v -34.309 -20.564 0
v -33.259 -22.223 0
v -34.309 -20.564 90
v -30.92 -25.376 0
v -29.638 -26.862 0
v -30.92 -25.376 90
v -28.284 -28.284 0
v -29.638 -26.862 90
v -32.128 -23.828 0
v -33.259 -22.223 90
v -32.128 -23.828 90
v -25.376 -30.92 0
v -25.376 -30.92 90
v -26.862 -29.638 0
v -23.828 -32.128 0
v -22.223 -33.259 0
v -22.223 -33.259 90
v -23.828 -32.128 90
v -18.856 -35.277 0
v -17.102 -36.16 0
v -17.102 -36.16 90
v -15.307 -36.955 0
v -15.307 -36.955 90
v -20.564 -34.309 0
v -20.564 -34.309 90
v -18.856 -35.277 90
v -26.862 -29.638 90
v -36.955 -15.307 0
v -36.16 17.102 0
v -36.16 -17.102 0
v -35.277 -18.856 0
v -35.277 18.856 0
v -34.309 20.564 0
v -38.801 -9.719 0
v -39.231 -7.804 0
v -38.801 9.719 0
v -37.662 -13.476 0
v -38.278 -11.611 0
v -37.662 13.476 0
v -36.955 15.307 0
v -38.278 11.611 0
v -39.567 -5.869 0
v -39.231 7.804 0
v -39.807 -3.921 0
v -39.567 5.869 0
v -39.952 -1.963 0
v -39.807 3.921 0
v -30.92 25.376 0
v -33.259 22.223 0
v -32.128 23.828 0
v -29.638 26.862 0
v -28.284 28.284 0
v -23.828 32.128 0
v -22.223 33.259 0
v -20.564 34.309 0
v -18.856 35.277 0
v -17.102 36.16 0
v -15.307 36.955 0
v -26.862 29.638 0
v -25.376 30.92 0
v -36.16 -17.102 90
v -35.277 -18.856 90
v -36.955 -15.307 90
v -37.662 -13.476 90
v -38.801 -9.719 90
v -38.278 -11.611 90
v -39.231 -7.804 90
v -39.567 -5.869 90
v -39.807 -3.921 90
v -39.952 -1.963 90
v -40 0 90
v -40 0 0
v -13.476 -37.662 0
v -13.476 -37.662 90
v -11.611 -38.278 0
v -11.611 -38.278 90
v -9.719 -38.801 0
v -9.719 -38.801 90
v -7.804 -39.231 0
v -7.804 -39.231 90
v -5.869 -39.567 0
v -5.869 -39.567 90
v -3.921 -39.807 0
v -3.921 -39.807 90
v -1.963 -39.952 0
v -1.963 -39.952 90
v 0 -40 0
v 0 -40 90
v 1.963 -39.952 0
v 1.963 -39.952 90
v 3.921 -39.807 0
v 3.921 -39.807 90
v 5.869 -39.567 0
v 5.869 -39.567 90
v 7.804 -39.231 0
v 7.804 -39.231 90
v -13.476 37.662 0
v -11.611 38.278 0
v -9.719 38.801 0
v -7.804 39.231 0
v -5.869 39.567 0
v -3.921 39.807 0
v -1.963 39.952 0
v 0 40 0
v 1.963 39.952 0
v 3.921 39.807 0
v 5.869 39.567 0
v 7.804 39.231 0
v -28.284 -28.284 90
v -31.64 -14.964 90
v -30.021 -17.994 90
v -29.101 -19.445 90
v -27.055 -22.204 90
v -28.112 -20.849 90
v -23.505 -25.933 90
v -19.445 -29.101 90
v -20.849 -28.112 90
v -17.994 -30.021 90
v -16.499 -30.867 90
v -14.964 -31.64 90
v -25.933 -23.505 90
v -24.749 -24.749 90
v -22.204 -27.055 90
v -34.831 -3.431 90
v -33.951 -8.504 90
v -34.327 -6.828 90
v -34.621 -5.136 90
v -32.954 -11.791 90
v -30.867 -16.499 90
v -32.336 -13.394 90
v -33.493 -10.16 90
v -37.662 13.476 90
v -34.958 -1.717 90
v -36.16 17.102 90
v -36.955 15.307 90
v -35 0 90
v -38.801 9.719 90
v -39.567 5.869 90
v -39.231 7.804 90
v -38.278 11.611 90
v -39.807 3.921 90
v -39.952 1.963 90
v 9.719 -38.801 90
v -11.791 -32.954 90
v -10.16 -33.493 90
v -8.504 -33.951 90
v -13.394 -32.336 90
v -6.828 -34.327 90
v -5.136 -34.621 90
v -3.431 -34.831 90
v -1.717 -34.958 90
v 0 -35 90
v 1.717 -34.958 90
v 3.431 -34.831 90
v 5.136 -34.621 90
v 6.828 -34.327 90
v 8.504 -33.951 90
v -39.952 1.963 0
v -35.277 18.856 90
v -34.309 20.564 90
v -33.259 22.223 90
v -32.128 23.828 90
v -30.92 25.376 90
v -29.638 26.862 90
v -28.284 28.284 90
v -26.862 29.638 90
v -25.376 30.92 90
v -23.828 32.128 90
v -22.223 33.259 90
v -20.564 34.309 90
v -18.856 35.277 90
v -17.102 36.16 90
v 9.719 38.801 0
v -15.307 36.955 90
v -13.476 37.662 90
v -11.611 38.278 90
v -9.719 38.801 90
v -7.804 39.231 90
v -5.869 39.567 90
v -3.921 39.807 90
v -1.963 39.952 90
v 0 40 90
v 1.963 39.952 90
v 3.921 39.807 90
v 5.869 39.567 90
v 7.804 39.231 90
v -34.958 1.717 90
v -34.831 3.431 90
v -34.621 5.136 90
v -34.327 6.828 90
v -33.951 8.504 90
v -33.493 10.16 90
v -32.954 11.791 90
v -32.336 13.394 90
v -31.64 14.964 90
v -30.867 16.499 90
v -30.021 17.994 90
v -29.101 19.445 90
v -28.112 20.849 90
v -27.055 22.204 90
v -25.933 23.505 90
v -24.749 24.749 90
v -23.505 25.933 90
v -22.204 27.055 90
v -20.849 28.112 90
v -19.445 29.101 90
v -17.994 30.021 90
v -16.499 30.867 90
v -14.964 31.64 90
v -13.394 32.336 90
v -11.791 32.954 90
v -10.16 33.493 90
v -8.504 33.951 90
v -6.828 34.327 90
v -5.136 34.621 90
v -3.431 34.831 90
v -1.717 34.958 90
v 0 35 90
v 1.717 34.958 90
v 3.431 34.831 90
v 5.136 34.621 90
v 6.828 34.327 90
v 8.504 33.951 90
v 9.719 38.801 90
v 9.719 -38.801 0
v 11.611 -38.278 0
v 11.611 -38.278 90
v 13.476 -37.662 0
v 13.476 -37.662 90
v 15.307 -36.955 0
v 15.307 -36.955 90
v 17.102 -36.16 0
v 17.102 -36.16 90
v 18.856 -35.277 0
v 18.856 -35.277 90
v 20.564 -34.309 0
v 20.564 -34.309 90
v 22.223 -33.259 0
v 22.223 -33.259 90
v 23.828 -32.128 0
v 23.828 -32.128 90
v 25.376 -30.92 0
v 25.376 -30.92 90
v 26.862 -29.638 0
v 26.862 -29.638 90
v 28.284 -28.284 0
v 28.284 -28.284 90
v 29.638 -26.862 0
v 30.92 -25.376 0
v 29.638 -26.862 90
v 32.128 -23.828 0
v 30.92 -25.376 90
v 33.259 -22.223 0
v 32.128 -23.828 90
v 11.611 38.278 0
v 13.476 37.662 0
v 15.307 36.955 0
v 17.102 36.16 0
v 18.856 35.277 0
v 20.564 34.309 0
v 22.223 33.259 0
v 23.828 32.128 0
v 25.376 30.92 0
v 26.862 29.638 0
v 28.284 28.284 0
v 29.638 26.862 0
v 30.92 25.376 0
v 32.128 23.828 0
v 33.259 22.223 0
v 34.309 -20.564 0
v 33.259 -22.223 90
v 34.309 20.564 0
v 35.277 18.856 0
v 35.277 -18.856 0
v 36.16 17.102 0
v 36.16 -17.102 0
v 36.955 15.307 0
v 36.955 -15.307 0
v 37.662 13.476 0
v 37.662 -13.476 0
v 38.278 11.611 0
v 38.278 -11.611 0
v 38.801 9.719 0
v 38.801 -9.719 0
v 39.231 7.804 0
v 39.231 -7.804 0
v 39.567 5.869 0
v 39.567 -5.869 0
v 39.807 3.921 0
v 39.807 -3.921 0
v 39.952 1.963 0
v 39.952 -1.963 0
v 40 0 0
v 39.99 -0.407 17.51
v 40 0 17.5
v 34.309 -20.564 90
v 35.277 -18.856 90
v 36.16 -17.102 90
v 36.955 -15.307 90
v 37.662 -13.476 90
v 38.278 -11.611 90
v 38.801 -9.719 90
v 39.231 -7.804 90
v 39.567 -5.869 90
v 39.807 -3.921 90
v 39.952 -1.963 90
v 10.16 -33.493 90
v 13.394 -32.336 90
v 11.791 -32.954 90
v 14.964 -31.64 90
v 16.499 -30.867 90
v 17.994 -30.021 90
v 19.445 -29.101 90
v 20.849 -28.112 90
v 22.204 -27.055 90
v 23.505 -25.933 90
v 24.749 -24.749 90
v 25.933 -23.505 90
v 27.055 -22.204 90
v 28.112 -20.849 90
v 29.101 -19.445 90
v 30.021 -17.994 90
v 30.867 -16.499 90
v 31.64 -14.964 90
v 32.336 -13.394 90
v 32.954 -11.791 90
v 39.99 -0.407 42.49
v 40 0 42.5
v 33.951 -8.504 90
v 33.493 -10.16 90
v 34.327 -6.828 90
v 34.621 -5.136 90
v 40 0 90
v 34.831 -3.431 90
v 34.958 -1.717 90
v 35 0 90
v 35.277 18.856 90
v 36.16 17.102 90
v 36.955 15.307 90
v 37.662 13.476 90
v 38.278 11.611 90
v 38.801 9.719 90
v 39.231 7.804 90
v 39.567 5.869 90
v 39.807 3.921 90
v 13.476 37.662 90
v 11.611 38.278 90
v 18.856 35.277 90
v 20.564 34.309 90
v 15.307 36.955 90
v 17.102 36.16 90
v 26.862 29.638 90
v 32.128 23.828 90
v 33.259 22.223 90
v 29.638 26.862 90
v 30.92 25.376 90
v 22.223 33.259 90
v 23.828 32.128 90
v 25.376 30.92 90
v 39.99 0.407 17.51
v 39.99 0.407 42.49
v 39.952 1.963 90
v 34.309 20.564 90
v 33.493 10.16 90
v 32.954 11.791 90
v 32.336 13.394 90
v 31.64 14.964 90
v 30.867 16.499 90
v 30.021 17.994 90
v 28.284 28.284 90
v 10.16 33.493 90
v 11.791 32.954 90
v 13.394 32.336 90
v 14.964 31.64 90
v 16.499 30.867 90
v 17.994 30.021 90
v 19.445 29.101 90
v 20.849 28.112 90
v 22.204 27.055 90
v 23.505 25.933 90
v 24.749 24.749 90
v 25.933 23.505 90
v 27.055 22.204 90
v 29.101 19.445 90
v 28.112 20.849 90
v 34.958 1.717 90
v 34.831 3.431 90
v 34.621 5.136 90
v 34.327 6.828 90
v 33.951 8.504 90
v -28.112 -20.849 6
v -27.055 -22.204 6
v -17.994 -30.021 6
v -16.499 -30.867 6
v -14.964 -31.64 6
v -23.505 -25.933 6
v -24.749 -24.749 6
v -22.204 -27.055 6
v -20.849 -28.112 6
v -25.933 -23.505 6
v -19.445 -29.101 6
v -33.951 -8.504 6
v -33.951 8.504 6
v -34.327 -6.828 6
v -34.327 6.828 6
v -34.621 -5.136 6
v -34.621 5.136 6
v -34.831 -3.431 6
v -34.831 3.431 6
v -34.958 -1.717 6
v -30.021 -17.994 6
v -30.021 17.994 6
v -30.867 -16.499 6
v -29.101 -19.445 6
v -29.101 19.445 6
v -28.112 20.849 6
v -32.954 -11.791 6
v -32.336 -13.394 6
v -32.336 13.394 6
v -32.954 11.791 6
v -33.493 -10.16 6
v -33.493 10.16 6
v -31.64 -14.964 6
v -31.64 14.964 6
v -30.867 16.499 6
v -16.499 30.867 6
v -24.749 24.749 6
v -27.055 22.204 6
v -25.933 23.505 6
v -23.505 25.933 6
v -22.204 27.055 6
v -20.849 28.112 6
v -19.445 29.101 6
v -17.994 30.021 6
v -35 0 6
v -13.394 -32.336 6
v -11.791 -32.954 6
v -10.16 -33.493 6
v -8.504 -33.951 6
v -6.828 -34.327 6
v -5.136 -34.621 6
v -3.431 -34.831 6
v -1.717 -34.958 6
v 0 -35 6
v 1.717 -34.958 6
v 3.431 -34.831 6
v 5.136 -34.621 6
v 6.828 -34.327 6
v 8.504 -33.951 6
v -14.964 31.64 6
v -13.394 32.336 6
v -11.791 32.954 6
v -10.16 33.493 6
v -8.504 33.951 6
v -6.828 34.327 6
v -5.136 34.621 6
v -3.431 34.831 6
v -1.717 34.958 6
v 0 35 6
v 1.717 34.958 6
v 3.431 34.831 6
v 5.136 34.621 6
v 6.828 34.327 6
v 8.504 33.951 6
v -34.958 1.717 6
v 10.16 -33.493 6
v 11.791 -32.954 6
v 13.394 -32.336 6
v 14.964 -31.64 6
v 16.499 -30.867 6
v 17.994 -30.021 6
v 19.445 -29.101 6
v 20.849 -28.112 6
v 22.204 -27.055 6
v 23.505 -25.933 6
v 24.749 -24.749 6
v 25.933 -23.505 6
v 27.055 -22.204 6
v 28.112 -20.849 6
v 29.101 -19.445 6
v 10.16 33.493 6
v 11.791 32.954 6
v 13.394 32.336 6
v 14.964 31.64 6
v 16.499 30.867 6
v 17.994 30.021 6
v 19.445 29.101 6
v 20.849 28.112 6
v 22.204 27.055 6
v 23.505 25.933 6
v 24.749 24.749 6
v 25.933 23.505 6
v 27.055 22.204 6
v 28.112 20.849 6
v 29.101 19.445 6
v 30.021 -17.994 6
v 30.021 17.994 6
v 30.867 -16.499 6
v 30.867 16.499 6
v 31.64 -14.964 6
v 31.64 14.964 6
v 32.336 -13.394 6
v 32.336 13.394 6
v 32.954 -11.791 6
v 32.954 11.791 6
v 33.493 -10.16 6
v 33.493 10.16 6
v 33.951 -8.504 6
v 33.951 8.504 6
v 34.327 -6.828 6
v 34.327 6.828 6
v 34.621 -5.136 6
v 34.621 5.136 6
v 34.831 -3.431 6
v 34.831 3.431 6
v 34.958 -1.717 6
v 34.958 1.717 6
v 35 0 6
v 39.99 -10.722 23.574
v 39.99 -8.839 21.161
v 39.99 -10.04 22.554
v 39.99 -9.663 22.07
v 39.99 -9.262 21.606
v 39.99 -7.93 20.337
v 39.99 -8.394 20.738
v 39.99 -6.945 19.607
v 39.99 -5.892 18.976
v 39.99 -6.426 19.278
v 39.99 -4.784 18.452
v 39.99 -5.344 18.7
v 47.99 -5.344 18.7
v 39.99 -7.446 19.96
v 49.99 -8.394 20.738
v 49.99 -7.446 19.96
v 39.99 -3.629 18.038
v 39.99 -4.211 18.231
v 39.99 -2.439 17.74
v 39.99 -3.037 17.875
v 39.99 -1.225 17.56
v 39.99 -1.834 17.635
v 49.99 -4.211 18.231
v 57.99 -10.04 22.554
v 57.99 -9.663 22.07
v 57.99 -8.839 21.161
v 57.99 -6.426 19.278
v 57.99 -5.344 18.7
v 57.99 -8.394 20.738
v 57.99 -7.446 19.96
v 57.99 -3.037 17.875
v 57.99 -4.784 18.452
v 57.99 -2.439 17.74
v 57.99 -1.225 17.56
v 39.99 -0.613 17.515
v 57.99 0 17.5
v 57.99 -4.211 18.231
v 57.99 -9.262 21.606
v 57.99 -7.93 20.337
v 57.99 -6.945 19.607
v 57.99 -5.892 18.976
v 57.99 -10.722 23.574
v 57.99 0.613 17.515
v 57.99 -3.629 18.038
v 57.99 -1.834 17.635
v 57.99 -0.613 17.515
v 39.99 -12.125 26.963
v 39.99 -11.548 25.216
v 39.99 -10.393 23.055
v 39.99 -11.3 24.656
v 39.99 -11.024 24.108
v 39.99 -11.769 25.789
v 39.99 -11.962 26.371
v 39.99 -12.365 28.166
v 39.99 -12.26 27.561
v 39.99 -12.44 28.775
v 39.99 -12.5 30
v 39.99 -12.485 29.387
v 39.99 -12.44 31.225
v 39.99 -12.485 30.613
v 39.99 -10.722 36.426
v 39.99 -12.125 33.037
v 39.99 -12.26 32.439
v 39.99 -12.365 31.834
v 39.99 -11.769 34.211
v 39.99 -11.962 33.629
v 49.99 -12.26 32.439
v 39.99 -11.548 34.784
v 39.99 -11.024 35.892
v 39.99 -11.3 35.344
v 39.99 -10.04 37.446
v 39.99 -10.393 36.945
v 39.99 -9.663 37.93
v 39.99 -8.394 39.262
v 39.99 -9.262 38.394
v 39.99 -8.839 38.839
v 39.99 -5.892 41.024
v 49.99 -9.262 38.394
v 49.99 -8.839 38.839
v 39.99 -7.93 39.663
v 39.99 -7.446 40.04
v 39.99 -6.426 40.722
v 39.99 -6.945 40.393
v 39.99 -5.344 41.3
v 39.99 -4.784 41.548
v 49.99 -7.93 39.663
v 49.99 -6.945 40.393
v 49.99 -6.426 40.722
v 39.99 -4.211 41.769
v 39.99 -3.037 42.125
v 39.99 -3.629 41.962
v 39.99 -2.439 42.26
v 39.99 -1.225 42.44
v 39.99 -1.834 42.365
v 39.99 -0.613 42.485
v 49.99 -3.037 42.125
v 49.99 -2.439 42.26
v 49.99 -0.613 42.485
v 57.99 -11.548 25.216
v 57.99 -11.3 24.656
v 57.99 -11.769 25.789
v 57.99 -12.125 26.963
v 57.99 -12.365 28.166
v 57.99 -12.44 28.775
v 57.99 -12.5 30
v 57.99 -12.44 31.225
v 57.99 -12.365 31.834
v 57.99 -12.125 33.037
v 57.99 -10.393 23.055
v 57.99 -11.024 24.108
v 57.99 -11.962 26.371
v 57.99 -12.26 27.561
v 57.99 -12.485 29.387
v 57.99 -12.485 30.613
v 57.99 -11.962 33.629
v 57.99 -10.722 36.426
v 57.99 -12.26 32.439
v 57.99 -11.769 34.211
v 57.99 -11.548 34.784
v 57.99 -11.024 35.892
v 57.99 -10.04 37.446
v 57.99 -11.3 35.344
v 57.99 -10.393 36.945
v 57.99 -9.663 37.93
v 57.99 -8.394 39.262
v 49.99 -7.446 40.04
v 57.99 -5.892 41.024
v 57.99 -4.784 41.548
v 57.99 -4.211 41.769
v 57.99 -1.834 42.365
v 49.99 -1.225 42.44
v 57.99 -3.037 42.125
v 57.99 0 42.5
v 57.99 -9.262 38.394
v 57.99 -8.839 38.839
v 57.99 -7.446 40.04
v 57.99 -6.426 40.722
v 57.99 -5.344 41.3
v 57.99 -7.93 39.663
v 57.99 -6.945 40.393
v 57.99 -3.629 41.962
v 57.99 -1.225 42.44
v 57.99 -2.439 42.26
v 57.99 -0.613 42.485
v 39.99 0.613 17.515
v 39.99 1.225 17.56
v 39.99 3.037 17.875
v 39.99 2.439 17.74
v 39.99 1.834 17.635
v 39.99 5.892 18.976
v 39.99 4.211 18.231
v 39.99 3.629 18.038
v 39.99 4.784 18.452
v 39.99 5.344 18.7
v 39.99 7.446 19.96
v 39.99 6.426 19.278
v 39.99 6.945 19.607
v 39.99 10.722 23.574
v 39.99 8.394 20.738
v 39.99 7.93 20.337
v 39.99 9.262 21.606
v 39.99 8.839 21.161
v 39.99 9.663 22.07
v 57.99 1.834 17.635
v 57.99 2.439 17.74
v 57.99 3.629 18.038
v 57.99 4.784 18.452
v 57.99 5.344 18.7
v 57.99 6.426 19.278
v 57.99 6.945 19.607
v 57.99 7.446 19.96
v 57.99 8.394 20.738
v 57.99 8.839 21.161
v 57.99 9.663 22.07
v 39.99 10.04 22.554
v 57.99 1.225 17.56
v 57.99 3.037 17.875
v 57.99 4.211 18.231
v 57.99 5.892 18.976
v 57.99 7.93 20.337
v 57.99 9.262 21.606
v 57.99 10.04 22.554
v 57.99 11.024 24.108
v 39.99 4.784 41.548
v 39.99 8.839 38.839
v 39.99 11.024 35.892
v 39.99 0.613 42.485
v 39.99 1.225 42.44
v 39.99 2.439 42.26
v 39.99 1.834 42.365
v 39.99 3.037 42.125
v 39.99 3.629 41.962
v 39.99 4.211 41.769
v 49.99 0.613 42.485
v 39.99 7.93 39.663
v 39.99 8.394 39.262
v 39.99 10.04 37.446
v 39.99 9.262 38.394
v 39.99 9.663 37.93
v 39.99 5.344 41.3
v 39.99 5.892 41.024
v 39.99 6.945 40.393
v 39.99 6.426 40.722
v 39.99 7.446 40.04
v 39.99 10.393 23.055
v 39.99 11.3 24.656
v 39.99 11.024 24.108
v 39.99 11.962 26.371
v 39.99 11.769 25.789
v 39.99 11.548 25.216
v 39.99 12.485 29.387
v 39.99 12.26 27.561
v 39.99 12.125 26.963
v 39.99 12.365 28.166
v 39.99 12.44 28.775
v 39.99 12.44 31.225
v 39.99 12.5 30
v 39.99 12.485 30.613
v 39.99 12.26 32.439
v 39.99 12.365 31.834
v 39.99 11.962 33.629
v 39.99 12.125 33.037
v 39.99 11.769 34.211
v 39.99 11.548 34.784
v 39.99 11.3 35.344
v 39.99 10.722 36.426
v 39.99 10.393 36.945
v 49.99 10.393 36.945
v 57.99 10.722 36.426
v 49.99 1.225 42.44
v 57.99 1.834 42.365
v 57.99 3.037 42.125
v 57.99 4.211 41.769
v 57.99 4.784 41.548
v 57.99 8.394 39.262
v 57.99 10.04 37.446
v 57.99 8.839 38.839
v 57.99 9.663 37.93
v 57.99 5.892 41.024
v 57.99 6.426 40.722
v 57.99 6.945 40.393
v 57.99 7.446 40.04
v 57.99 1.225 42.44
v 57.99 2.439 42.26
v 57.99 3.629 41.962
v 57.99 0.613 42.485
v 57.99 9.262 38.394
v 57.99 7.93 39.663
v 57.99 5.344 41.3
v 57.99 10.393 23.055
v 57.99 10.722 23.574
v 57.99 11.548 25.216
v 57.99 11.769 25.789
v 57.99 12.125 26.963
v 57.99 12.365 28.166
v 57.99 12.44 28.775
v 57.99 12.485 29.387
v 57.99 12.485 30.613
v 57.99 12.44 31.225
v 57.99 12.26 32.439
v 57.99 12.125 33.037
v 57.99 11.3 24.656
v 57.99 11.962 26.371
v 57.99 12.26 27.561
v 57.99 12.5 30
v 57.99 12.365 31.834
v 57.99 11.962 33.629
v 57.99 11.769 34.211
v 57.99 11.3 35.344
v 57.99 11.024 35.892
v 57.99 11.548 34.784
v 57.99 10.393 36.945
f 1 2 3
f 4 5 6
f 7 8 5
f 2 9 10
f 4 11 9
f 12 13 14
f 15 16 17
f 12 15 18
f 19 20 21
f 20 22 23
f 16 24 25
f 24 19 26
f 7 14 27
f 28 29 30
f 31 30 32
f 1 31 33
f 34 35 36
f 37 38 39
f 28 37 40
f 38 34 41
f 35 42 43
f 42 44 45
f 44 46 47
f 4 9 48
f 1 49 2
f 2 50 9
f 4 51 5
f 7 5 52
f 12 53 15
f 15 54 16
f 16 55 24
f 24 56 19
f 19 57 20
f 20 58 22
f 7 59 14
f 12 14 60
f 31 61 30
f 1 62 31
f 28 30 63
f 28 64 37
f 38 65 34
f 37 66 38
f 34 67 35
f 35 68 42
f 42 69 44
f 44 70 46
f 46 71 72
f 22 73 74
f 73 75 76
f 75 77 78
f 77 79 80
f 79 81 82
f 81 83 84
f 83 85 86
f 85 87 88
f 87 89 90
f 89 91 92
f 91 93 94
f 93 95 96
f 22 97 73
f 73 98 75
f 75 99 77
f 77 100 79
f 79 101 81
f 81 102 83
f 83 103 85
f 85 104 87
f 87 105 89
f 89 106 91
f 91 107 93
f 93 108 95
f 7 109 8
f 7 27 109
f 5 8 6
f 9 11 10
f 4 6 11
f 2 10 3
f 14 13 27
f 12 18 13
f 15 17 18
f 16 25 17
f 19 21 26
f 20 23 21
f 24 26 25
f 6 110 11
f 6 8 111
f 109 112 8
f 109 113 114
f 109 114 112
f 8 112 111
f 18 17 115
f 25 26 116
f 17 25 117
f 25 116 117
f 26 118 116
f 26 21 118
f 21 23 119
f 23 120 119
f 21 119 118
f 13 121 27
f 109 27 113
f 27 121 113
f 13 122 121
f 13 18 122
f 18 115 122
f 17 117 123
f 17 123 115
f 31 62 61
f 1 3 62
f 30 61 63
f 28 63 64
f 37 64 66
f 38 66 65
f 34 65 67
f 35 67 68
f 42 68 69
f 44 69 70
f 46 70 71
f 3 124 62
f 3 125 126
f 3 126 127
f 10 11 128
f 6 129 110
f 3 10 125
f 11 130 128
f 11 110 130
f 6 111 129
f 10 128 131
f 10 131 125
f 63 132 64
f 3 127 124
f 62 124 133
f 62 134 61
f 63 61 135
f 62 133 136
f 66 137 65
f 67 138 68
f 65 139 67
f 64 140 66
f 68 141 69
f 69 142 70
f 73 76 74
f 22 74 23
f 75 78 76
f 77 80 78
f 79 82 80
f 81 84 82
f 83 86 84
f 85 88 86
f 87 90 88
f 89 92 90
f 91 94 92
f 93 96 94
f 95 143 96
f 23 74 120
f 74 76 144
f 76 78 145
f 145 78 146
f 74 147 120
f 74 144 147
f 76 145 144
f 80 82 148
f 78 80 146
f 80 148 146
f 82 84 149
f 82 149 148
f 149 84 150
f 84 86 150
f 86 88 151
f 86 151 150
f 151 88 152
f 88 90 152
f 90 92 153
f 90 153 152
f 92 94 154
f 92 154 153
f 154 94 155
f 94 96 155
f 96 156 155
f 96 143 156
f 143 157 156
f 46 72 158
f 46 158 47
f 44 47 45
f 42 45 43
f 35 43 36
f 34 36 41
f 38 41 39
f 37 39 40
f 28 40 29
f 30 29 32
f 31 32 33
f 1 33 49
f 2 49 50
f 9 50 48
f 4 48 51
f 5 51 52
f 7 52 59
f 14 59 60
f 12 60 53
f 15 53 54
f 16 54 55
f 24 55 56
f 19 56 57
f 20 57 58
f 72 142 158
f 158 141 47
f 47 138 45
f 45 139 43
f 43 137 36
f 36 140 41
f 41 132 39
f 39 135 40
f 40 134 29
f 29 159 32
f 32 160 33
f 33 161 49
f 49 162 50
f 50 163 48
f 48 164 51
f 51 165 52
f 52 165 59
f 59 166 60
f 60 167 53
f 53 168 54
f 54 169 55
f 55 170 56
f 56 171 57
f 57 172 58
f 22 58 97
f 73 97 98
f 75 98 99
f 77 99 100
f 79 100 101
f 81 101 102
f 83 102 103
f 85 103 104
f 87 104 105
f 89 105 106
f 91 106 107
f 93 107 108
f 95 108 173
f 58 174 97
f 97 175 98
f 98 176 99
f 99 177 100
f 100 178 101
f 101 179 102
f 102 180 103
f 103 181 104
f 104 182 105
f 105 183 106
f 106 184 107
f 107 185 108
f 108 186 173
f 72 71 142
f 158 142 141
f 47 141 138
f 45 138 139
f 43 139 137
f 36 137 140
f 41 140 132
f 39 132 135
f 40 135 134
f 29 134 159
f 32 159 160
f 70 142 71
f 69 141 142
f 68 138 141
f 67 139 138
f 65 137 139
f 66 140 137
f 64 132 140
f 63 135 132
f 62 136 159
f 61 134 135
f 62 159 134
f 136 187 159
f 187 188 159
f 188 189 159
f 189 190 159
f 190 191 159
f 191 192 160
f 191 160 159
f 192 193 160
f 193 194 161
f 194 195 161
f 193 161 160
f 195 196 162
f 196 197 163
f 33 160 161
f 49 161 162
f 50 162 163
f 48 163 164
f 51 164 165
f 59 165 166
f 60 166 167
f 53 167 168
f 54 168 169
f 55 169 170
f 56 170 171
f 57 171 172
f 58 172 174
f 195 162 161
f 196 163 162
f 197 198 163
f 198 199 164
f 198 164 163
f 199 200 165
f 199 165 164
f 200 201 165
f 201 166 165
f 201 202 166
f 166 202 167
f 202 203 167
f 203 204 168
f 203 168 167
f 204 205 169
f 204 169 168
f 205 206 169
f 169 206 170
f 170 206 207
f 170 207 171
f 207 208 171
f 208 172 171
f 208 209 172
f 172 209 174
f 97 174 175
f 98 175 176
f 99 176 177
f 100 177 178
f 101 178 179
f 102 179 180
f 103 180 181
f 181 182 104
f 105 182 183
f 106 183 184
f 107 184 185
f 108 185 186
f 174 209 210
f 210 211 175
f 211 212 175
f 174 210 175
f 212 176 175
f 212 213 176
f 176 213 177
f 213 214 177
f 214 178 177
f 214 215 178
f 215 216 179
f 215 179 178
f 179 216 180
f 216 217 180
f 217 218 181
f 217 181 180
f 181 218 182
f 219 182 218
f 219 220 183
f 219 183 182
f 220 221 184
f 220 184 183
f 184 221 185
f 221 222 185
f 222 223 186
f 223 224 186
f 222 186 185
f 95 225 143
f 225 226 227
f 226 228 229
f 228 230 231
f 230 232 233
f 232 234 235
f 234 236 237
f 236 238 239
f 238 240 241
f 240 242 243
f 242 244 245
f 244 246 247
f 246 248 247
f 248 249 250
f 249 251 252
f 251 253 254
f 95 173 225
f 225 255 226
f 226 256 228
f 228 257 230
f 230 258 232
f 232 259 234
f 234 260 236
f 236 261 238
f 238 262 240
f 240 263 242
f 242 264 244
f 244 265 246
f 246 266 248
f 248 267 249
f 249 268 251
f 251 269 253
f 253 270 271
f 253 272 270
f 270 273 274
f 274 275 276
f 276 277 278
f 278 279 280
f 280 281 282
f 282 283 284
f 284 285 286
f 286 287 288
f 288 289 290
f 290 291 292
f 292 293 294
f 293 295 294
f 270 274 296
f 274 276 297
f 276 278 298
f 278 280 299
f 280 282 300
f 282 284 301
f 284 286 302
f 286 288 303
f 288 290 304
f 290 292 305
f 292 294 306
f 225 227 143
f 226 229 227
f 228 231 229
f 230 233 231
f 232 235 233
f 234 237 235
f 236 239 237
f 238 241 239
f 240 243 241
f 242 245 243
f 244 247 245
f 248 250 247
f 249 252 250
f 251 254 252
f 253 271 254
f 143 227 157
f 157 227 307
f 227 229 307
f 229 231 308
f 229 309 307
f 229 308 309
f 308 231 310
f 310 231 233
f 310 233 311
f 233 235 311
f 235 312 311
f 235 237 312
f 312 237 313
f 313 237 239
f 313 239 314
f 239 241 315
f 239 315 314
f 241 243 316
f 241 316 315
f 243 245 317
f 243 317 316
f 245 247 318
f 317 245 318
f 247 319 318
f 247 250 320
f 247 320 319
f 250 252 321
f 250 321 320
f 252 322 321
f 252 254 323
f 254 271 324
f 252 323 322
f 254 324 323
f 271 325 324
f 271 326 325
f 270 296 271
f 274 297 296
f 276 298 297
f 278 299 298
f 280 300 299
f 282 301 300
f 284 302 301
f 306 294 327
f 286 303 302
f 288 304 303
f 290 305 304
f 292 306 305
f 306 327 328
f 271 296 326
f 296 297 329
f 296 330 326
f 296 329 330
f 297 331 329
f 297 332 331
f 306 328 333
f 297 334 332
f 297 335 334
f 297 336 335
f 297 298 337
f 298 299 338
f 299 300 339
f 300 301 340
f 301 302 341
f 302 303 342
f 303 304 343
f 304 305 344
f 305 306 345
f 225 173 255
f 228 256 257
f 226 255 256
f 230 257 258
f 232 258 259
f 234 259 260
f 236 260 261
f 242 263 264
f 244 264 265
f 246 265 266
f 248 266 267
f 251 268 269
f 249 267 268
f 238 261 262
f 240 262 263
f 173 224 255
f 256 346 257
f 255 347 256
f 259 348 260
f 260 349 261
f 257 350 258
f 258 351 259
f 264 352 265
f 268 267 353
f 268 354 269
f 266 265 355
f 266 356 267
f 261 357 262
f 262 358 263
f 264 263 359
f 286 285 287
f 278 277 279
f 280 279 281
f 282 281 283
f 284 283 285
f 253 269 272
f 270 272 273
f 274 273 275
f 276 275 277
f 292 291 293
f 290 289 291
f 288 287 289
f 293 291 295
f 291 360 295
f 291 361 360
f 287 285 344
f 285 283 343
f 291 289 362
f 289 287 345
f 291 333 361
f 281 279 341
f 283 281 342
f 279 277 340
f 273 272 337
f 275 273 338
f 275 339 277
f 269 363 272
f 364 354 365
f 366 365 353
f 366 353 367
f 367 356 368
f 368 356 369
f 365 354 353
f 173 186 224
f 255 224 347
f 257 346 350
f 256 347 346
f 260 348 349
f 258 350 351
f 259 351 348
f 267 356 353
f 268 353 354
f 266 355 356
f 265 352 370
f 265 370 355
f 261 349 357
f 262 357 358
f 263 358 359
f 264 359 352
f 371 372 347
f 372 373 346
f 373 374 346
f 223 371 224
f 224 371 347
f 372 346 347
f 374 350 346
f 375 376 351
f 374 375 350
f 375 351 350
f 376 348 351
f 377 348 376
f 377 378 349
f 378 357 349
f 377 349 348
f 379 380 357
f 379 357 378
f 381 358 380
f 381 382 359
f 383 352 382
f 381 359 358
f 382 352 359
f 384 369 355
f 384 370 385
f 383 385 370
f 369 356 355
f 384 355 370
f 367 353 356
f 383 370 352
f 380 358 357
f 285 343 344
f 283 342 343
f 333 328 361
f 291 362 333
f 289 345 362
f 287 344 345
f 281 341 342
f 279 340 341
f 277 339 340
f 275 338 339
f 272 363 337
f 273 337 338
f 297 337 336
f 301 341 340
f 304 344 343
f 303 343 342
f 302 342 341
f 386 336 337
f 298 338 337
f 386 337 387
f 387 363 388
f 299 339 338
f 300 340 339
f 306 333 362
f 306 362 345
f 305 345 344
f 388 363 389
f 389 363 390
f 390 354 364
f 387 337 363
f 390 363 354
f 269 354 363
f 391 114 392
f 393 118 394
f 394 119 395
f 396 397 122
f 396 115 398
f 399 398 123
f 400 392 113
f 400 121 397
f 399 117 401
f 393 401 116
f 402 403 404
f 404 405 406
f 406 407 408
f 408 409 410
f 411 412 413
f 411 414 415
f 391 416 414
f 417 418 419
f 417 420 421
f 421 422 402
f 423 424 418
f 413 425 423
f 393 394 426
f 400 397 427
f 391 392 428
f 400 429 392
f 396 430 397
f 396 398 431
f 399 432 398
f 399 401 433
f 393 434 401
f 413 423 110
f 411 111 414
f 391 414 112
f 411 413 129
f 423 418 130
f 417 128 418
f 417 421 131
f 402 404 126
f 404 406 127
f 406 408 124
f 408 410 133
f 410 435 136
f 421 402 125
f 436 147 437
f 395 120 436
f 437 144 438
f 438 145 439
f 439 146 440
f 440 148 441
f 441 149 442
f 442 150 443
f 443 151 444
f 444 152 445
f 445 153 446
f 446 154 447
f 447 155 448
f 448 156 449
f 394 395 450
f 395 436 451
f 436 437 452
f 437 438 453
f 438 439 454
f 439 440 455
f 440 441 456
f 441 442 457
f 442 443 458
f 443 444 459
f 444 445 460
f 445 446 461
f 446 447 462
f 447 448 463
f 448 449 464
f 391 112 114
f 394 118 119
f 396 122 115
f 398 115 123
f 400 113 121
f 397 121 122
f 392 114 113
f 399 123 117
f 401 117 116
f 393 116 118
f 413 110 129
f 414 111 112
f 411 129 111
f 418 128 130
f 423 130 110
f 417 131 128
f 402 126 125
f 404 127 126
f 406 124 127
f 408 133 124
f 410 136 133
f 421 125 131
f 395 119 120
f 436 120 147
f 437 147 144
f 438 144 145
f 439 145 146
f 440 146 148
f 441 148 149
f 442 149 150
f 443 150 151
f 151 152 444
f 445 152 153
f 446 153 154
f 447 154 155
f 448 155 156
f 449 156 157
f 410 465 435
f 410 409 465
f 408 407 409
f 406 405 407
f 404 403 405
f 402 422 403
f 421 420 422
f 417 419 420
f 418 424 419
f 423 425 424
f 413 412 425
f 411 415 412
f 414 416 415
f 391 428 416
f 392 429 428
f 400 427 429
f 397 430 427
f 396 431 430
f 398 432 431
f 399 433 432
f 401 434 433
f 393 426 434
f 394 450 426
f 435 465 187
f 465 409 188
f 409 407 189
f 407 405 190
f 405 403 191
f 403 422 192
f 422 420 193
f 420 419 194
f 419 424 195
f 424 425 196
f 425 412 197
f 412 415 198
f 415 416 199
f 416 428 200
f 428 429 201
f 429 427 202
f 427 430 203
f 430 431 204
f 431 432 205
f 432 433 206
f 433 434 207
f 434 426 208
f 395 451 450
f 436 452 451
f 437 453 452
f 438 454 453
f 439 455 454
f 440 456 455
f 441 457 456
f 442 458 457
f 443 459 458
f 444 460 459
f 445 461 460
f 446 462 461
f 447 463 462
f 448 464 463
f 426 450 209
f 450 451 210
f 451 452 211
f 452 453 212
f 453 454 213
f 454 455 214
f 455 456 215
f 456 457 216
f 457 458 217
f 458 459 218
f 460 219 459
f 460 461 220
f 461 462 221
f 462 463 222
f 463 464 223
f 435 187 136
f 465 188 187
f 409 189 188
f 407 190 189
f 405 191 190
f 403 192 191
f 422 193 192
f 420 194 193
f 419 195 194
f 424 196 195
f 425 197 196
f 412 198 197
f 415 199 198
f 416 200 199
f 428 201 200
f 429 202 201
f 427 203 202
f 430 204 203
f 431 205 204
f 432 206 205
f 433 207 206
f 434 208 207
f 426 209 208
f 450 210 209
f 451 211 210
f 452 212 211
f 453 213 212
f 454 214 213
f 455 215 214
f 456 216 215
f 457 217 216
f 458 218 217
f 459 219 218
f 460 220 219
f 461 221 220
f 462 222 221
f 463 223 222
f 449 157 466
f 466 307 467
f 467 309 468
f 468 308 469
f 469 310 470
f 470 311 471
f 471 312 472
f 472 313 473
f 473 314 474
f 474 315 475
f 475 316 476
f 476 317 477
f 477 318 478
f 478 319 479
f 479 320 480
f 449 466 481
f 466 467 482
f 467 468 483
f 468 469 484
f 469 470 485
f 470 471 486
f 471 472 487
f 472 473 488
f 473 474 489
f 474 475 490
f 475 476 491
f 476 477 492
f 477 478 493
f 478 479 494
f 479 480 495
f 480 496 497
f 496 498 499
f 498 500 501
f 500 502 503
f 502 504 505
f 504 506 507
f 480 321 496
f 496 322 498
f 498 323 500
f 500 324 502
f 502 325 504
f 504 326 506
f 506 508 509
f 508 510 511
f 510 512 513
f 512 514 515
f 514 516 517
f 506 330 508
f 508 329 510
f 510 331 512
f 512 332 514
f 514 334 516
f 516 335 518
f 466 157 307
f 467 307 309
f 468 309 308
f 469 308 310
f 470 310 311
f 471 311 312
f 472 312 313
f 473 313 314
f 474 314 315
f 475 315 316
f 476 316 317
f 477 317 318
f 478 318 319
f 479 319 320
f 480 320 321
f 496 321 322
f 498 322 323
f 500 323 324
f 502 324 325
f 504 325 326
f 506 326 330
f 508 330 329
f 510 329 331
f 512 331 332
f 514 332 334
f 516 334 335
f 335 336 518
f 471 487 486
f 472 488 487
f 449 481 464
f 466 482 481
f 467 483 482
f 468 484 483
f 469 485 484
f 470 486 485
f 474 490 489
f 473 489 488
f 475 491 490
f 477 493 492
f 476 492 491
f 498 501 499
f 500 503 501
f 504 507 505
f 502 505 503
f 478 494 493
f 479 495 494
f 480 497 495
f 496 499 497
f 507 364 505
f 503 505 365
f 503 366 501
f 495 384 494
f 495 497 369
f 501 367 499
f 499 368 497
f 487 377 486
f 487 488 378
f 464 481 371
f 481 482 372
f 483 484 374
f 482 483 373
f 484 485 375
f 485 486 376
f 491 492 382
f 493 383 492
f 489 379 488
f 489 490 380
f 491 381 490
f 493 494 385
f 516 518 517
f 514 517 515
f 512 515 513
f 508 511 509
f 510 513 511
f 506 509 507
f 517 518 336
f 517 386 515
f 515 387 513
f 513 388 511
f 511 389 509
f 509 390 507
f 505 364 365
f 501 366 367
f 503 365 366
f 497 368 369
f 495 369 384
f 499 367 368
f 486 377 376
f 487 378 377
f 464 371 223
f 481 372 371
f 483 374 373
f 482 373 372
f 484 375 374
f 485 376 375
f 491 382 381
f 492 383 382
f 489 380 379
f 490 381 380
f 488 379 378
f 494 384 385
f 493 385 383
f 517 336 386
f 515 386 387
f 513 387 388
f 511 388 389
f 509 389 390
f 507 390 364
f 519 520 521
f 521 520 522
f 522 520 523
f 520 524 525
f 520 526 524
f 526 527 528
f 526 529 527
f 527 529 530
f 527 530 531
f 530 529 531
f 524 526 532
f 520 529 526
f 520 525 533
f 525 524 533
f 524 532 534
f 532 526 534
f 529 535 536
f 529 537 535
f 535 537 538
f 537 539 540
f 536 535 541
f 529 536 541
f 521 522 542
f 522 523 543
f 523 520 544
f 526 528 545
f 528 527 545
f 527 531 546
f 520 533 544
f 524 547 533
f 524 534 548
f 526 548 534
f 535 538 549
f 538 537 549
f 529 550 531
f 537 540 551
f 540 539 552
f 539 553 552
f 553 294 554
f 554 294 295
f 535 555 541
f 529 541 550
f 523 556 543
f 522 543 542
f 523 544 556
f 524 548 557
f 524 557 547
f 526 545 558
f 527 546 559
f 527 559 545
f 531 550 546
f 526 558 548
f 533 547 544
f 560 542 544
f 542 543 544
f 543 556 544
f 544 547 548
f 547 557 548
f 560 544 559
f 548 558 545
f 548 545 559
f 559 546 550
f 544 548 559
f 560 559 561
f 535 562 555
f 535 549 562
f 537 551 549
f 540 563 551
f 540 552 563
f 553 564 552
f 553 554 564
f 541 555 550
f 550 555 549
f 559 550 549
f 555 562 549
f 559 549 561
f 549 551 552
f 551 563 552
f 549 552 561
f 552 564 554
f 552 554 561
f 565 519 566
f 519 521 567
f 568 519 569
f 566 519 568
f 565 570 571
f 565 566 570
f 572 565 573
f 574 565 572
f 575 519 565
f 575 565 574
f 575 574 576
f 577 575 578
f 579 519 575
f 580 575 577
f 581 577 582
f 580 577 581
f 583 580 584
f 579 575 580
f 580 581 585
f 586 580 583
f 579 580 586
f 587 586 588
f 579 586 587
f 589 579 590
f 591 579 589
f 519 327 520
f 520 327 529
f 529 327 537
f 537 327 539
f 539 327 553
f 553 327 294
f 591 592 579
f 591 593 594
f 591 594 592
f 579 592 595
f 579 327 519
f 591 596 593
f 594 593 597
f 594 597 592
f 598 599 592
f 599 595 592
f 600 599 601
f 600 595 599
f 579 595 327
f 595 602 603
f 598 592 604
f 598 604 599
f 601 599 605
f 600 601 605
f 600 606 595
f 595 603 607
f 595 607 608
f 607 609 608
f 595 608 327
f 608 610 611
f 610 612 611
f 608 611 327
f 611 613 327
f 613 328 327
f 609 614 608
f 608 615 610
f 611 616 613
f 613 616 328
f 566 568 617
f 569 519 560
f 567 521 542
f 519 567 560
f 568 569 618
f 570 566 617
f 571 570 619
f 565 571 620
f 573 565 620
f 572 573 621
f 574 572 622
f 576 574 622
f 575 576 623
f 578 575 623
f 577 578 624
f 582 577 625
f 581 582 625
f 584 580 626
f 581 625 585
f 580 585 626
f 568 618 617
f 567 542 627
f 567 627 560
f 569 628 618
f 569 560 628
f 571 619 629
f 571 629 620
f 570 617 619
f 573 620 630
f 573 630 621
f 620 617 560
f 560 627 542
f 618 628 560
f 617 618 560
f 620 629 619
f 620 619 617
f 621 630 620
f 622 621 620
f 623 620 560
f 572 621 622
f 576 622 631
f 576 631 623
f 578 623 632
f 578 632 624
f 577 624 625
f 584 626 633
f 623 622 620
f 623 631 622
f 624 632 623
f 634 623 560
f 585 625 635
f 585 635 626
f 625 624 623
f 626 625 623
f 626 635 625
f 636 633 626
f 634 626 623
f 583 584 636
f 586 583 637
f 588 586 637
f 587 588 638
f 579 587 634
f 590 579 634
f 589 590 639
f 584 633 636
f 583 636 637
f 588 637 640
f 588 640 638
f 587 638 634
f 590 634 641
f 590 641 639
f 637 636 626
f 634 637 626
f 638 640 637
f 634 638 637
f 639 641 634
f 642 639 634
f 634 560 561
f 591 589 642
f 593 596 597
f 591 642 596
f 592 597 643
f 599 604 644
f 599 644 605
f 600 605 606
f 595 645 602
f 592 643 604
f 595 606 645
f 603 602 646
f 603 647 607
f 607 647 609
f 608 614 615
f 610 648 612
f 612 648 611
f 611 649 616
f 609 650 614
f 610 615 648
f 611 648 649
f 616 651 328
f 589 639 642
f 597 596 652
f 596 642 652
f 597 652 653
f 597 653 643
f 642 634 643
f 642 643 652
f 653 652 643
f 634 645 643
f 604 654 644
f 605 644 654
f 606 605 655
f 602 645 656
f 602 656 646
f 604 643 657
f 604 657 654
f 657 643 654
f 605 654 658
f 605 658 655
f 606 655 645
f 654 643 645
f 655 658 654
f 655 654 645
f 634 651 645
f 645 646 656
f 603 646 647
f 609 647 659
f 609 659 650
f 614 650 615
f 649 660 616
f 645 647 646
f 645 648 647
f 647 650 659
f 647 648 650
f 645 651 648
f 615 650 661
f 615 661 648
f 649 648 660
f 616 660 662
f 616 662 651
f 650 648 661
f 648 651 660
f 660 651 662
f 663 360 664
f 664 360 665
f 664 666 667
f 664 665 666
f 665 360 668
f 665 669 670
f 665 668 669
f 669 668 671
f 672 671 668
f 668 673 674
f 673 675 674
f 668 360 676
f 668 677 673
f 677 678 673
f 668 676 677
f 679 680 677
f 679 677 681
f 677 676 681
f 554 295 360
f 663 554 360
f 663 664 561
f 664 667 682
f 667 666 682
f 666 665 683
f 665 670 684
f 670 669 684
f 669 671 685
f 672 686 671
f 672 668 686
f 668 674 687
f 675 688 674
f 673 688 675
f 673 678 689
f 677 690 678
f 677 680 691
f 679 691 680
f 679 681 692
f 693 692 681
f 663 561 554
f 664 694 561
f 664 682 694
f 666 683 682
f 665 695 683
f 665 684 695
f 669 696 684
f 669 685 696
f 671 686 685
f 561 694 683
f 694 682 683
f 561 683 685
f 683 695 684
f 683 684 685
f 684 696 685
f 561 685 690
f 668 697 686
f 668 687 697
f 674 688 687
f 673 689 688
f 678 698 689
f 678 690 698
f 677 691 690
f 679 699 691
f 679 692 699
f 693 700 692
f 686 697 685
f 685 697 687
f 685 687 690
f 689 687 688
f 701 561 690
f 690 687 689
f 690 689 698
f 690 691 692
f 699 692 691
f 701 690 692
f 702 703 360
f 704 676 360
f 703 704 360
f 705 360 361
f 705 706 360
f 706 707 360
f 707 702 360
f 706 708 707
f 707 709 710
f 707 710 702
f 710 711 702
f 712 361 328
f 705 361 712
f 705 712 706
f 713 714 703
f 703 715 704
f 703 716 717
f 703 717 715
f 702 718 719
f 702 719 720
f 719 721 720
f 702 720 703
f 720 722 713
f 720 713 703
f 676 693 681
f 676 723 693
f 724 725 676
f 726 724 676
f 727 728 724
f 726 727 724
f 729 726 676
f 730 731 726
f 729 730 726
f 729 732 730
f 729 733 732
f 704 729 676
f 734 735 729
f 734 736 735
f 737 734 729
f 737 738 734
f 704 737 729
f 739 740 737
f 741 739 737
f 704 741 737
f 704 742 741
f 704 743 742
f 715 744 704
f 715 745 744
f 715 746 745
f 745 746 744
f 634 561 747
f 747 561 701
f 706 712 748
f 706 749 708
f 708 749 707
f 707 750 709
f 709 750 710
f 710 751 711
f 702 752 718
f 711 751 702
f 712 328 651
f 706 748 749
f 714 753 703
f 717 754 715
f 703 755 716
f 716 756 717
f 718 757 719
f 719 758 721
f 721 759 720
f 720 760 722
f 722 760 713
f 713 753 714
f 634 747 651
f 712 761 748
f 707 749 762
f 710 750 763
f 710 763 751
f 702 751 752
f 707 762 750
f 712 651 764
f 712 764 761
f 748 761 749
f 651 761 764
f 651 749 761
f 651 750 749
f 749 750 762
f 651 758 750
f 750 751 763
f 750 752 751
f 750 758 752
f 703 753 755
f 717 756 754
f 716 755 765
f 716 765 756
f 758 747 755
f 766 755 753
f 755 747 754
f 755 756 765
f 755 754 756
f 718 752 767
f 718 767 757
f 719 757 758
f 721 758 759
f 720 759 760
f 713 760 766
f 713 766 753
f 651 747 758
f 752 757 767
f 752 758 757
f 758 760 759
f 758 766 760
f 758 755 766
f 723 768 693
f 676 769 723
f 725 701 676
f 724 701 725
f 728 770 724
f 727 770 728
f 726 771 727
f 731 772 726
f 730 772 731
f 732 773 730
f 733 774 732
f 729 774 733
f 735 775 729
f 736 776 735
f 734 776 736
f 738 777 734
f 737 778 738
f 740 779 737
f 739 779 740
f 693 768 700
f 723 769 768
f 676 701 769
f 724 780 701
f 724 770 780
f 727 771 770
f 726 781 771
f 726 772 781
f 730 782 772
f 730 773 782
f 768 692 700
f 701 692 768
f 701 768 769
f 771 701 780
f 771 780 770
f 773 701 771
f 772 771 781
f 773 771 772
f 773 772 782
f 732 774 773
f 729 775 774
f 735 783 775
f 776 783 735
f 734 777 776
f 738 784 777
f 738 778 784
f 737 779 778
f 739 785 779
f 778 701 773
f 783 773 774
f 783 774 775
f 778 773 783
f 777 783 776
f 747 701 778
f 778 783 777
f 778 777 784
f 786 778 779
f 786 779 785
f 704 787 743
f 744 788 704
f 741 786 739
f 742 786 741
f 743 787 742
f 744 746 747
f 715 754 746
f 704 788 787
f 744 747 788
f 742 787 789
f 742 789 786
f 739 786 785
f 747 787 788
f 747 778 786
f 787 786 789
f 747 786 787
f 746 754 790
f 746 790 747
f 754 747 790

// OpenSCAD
$fn = 128;

// Parameters
outer_d   = 80;
inner_d   = 70;
height    = 90;
base_th   = 6;

handle_gap_w = 25;   // inner width of handle opening
handle_gap_h = 30;   // inner height of handle opening
handle_th    = 8;    // radial thickness of handle
handle_outset = 10;   // outward extension beyond mug outer surface

module mug_body() {
    difference() {
        cylinder(h = height, d = outer_d);
        translate([0,0,base_th])
            cylinder(h = height - base_th + 0.02, d = inner_d);
    }
}

module handle_2d() {
    // D-shape profile: straight side on mug, semicircular outer side
    r = handle_gap_w / 2;
    polygon(points = [
        [0, -r],
        [0,  r],
        [handle_th,  r],
        [handle_th, -r]
    ]);
}

module handle() {
    // Place handle on +X side, centered vertically
    translate([outer_d/2 - 0.01, 0, height/2 - handle_gap_h/2])
        rotate([0,90,0])
            linear_extrude(height = handle_outset)
                offset(r = 0) // keeps 2D clean
                    difference() {
                        // Outer shape
                        offset(r = 0)
                            hull() {
                                translate([0,0]) circle(d = handle_gap_w);
                                translate([handle_th,0]) circle(d = handle_gap_w);
                            }
                        // Inner opening
                        translate([handle_th,0])
                            square([0.001,0.001], center=true);
                    }
}

module handle_clean() {
    // Build a robust D-shaped handle as a 3D solid using hull of two cylinders.
    // The opening dimensions are set by the cylinder diameter and spacing.
    r = handle_gap_w/2;

    translate([outer_d/2 - 0.01, 0, height/2 - handle_gap_h/2]) {
        rotate([0,90,0]) {
            hull() {
                translate([0, 0, 0])
                    cylinder(h = handle_outset, r = r, center = false);
                translate([0, 0, handle_th])
                    cylinder(h = handle_outset, r = r, center = false);
            }
        }
    }
}

union() {
    mug_body();
    // Handle placed only on +X side, centered vertically
    // The handle body intersects the mug wall for a manifold union.
    translate([0,0,0])
        handle_clean();
}
